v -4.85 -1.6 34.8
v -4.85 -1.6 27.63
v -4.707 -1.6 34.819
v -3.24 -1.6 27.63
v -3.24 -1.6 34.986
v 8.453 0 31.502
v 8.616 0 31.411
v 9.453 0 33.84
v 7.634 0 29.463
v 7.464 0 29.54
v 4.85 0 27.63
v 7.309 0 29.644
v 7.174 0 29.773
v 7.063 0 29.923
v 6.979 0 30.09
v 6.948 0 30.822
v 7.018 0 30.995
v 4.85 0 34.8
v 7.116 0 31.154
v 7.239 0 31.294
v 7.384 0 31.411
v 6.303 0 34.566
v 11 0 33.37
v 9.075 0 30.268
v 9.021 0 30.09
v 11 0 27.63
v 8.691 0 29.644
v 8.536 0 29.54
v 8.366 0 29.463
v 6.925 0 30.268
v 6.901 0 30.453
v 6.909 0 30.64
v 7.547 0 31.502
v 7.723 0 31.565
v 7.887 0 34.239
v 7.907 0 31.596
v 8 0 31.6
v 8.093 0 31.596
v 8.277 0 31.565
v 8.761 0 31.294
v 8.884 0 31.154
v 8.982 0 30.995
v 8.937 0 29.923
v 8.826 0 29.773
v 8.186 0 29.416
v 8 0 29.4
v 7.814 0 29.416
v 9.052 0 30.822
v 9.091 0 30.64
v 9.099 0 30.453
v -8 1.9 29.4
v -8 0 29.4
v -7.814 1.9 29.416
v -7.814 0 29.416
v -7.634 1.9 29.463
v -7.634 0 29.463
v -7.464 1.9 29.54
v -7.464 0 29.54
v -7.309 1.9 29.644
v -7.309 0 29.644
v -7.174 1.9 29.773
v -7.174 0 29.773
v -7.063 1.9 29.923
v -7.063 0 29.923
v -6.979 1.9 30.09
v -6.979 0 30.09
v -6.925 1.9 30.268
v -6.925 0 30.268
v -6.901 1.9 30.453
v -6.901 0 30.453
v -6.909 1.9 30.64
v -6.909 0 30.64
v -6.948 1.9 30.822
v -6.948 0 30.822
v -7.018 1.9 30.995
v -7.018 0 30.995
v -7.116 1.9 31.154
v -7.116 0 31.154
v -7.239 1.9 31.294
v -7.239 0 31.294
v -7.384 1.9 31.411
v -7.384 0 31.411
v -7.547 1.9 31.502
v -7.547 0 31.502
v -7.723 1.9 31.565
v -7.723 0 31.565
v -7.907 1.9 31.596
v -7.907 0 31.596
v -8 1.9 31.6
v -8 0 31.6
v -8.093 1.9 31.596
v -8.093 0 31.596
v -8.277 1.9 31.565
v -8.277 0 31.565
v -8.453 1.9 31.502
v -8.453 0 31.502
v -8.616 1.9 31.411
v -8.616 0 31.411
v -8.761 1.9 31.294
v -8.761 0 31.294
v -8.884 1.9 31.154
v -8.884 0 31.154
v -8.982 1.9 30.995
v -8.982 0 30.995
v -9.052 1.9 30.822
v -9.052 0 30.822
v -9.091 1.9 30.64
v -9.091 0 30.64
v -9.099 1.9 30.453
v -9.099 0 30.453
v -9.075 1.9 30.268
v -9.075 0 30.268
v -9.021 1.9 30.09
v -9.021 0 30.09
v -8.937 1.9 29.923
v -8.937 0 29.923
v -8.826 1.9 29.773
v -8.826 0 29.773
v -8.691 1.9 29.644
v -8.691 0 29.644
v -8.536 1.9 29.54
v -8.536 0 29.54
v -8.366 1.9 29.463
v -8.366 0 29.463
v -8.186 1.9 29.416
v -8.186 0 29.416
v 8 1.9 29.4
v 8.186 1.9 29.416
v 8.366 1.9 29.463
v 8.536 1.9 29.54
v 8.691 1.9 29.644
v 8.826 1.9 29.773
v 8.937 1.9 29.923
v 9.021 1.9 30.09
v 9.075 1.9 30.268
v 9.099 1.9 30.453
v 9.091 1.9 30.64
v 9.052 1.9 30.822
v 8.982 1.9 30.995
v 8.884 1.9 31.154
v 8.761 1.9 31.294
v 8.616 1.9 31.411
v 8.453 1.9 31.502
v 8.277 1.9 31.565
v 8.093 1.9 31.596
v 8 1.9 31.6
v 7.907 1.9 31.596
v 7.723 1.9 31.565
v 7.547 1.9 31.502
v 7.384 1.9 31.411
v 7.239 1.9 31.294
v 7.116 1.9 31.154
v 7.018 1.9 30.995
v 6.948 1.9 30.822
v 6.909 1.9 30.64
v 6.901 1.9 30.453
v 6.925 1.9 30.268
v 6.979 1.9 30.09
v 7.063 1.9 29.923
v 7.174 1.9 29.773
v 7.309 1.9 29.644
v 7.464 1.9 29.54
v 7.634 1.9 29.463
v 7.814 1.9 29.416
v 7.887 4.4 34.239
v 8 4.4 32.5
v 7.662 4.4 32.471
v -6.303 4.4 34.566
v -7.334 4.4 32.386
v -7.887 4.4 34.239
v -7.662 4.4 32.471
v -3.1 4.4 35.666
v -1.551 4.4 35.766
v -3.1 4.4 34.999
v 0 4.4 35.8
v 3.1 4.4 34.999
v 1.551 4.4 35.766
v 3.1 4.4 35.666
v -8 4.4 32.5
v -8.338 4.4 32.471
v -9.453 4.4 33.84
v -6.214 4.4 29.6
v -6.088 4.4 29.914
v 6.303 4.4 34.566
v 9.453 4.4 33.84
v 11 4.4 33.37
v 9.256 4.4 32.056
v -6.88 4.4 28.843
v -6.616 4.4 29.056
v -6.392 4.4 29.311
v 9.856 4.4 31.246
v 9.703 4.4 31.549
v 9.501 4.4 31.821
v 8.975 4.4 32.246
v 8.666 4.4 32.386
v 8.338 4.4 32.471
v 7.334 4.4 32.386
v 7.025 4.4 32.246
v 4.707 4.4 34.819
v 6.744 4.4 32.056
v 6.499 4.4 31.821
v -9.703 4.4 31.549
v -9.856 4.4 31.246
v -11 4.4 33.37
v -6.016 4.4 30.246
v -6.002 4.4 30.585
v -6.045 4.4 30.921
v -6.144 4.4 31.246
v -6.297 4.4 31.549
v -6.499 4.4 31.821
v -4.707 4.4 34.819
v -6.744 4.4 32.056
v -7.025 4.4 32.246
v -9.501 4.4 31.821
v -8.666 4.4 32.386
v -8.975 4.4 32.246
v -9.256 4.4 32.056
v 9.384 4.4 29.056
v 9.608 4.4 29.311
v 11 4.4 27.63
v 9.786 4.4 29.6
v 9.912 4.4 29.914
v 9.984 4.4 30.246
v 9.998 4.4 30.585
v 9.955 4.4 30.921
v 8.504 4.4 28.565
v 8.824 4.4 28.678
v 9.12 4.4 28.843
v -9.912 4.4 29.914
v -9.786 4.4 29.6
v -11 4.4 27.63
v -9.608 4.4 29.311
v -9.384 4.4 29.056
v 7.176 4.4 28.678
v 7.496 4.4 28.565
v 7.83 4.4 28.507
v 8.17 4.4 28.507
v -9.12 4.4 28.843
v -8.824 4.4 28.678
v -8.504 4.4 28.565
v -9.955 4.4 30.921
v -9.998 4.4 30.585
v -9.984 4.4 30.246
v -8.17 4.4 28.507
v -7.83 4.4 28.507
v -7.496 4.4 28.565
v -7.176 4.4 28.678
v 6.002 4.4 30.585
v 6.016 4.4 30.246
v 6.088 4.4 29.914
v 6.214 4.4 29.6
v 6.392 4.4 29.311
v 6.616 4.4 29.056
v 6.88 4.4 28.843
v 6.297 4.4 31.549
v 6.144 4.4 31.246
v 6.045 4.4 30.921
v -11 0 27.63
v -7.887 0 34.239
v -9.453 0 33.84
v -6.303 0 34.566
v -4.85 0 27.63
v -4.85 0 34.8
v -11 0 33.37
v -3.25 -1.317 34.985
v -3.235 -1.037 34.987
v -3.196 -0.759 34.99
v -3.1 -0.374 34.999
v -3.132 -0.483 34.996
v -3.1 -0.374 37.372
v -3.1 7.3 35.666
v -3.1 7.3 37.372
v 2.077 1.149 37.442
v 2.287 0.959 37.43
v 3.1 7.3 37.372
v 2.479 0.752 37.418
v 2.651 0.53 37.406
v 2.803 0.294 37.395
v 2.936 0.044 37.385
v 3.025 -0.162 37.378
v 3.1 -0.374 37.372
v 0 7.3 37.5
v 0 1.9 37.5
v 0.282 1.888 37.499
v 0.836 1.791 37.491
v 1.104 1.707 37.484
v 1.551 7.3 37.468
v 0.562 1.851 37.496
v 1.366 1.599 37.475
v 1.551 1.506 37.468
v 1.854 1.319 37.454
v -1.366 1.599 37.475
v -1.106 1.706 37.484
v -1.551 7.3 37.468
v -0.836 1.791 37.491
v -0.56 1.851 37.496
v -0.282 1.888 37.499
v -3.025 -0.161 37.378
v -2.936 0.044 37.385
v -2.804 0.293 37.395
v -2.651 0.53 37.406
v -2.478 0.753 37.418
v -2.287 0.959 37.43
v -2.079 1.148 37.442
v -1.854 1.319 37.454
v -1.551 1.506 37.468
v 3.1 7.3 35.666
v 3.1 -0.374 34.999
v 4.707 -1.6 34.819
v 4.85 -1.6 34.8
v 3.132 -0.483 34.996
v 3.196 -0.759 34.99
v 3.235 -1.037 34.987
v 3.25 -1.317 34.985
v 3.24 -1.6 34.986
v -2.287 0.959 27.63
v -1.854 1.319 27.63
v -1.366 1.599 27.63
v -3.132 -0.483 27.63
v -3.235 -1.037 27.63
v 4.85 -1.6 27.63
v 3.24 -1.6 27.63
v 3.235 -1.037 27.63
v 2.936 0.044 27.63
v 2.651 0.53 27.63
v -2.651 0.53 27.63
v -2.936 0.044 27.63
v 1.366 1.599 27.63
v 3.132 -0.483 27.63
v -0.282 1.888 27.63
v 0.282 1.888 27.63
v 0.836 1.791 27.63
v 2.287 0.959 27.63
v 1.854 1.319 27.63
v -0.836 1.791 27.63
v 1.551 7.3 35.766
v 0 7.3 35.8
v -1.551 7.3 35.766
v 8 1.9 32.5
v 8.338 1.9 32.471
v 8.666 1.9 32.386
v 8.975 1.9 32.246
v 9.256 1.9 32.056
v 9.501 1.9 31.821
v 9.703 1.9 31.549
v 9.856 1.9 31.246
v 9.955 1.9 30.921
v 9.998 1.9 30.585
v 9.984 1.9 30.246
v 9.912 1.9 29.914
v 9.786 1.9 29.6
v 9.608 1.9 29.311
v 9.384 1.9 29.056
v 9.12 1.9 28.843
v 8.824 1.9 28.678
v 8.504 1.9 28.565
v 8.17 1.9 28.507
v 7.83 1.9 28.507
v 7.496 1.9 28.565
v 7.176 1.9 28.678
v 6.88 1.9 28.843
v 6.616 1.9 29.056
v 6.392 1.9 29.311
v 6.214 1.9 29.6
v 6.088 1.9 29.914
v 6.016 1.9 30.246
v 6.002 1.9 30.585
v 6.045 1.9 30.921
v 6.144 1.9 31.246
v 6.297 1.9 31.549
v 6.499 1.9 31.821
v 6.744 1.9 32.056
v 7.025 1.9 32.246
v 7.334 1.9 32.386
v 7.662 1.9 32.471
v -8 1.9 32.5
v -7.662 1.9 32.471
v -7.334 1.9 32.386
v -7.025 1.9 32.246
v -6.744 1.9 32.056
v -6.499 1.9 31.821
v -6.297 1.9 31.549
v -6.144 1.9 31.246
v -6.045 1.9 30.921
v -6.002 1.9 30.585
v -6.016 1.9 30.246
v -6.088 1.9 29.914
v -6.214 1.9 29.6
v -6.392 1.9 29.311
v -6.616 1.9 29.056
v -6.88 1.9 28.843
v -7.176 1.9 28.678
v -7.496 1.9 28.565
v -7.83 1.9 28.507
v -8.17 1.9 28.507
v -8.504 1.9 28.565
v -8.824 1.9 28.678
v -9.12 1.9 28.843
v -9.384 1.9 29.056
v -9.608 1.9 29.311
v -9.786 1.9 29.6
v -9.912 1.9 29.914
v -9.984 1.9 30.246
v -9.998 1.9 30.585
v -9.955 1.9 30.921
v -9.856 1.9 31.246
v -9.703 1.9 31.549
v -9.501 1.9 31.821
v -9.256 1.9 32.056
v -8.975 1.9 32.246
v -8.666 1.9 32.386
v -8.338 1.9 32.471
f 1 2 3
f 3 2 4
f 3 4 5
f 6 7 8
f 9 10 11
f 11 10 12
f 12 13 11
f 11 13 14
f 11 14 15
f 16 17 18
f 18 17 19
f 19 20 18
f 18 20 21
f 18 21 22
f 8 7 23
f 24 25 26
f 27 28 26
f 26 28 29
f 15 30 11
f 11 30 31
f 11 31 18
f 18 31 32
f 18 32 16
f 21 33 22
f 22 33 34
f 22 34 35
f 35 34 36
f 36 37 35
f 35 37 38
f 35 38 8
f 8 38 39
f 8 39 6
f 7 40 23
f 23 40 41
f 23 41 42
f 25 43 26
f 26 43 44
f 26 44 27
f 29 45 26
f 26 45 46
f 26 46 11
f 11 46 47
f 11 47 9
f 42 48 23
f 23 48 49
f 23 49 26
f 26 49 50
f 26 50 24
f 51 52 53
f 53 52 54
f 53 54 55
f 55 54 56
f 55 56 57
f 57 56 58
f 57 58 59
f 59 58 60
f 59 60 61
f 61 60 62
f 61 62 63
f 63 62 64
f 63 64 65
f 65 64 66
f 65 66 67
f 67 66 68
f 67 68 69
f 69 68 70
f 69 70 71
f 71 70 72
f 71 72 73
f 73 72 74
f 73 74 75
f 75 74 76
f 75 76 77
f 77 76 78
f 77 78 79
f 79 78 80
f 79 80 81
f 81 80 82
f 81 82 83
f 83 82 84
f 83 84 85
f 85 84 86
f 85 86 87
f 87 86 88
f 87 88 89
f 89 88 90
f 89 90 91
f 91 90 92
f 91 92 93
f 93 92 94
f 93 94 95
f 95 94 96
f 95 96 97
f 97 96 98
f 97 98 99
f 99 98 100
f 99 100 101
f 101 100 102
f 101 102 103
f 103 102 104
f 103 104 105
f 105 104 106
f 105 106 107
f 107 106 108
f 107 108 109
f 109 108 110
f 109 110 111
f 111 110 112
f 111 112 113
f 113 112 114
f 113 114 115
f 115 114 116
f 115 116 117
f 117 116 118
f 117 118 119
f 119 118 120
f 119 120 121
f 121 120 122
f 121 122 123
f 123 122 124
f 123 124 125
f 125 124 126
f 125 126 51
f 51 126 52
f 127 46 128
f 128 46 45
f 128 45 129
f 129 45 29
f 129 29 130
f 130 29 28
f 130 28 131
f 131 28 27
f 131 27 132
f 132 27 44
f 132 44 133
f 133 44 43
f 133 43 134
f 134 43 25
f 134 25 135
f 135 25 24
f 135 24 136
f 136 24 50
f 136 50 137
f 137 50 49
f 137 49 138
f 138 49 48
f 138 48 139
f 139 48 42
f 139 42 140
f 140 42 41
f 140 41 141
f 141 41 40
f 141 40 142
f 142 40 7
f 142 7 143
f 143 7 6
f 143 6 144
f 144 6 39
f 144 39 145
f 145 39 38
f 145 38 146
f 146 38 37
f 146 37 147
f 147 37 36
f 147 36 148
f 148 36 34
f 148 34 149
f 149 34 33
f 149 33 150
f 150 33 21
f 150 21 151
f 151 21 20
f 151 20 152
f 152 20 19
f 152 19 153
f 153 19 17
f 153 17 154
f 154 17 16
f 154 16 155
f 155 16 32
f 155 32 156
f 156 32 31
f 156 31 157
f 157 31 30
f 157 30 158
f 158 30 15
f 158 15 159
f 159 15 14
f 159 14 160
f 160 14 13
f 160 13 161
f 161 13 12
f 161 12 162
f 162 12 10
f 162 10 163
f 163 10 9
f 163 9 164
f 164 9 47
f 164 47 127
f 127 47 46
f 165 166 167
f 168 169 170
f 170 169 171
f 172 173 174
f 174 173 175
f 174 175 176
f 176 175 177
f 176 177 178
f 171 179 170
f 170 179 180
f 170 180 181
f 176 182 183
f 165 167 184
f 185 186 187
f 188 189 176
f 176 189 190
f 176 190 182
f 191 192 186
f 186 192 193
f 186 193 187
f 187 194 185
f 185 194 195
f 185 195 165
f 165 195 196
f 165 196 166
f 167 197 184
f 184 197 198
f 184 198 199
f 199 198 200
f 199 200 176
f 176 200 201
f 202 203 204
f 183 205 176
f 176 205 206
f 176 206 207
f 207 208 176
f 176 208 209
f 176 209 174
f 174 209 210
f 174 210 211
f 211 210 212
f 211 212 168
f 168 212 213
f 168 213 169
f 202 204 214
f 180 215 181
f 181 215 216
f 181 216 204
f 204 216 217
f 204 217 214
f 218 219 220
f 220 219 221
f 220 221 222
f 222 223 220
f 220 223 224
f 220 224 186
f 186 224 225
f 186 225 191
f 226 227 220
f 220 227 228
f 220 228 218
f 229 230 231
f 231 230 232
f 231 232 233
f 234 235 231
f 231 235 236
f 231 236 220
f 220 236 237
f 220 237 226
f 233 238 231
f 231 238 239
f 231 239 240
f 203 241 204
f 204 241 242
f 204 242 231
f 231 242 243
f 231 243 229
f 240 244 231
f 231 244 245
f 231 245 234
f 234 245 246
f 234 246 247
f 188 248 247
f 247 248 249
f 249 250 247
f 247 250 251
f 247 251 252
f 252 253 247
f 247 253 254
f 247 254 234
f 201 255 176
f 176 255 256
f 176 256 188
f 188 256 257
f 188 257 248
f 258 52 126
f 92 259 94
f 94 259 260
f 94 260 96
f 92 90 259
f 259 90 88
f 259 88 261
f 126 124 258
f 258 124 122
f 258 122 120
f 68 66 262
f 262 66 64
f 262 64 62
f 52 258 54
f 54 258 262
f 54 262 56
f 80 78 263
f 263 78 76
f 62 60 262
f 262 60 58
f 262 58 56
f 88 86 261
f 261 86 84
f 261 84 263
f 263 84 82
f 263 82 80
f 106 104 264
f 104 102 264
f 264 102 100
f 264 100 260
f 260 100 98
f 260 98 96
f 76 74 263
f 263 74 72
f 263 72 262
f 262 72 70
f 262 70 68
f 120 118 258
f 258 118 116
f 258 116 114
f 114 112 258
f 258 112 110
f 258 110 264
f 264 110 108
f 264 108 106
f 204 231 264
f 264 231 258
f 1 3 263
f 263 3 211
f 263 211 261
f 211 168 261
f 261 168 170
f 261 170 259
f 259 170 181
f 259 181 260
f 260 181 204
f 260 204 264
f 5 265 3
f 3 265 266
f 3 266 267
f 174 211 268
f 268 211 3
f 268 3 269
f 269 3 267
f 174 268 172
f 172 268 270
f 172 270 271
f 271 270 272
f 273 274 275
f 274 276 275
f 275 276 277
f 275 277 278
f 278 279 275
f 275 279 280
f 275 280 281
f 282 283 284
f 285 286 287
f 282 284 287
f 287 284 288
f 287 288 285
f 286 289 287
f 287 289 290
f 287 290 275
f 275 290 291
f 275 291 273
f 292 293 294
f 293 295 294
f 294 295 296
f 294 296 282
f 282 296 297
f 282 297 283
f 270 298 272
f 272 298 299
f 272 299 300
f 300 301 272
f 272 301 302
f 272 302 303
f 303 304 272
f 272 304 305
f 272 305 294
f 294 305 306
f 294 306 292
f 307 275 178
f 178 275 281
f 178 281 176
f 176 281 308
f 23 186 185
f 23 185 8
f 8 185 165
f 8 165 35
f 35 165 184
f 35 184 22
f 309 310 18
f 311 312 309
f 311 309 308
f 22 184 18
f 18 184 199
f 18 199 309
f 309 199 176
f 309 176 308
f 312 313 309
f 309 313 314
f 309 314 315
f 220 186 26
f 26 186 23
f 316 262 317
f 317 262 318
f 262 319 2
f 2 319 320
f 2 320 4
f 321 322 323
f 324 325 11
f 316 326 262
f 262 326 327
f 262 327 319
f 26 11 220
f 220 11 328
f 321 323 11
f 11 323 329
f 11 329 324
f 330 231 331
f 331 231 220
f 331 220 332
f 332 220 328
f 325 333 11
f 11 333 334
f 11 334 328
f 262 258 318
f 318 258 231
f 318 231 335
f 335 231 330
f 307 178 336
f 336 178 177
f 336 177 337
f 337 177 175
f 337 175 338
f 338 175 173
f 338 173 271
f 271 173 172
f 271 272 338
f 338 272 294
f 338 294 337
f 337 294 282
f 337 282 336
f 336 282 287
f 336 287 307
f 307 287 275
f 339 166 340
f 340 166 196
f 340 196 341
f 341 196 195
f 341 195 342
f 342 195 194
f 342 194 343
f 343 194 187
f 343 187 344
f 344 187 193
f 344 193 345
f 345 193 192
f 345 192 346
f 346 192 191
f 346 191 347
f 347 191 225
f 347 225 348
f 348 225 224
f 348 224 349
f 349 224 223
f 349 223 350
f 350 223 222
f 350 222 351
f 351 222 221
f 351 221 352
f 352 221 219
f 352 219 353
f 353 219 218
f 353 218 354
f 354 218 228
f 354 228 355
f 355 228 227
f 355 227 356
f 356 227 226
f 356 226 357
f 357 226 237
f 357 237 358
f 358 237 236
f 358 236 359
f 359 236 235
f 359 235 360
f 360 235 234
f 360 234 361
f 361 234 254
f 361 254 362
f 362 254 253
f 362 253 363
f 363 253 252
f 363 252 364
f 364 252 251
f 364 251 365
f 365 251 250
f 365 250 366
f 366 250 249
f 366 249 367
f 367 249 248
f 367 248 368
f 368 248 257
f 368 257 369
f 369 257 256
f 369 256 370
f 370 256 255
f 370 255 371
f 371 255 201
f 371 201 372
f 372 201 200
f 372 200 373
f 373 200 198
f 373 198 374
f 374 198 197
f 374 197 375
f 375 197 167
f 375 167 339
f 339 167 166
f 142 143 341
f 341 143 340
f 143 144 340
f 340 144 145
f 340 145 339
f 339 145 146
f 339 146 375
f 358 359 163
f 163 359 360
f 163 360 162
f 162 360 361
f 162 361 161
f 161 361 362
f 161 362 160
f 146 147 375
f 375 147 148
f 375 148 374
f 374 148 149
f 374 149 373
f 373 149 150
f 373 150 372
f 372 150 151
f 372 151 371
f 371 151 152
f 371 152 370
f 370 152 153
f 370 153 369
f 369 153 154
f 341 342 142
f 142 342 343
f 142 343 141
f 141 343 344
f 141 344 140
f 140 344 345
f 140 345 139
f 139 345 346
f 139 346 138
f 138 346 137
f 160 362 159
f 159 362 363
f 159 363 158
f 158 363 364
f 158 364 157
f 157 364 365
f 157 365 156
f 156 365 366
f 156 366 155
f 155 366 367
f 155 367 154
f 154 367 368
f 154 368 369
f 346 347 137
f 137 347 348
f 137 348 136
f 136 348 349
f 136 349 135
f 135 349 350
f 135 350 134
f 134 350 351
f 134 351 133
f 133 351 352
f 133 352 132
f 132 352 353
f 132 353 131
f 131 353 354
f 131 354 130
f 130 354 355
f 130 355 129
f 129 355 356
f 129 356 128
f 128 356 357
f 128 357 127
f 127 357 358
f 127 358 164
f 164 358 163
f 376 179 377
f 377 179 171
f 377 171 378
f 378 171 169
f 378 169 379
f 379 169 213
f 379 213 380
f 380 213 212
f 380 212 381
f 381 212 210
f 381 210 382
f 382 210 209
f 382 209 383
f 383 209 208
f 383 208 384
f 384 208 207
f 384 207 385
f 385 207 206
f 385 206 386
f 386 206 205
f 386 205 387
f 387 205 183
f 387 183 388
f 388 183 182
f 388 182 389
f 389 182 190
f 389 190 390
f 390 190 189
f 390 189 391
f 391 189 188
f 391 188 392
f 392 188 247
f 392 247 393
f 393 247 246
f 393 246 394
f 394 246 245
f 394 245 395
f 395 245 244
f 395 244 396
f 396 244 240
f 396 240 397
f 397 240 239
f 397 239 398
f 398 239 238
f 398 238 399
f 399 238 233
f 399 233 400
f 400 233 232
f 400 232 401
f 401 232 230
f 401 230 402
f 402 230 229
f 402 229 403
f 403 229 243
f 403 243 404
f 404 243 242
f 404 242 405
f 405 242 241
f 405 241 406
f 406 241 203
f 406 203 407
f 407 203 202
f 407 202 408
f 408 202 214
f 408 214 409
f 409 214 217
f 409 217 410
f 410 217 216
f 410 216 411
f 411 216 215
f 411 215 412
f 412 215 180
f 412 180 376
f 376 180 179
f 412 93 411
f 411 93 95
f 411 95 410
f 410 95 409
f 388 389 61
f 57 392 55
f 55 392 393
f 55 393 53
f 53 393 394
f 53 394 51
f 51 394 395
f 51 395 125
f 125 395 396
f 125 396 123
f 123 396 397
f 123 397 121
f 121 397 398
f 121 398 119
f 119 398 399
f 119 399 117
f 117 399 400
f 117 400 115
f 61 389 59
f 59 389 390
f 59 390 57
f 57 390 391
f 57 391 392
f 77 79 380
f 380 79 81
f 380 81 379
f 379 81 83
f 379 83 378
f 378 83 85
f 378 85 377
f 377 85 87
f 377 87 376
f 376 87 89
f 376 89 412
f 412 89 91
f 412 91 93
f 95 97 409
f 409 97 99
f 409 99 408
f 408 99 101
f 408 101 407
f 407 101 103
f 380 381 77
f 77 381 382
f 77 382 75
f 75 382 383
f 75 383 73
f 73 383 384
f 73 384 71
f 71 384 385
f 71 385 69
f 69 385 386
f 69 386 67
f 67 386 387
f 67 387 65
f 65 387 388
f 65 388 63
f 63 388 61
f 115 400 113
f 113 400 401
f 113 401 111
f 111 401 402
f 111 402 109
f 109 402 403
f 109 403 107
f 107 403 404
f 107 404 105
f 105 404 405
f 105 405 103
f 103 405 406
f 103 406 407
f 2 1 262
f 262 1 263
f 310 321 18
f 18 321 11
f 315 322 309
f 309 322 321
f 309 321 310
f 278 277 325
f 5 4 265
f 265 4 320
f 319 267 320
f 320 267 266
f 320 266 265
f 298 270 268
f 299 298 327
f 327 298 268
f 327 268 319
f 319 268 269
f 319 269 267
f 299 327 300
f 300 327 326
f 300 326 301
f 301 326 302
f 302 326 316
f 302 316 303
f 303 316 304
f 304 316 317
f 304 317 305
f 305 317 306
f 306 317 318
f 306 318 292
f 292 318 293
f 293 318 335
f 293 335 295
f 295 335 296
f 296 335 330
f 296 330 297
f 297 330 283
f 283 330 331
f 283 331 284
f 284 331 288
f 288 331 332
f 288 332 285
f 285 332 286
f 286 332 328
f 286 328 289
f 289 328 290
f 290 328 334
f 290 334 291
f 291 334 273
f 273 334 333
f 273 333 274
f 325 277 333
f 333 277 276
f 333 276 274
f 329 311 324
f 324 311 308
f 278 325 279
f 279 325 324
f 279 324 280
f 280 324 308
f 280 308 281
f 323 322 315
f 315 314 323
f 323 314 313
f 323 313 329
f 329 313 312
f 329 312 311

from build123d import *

# Parameters (mm, degrees)
SKETCH1_R           = 1.1
BOSS_EXTRUDE1_DEPTH = 4.4
BOSS_EXTRUDE2_DEPTH = 2.9
SKETCH3_R           = 2
CUT_EXTRUDE1_DEPTH  = 2.5
BOSS_EXTRUDE3_DEPTH = 1.6
SKETCH6_R           = 3.25
CUT_EXTRUDE2_DEPTH  = 10.869724242


with BuildPart() as part:
    # Sketch1 → Boss-Extrude1 (new body)
    with BuildSketch(Plane(origin=(0, 0, 0), x_dir=(1, 0, 0), z_dir=(0, 1, 0))):
        with BuildLine():
            Line((-3.1, -37.371647007), (-3.1, -34.998978499))
            ThreePointArc((-3.1, -34.998978499), (-7.096909, -34.411805803), (-11, -33.369724242))
            Line((-11, -33.369724242), (-11, -27.630275758))
            Line((-11, -27.630275758), (11, -27.630275758))
            Line((11, -27.630275758), (11, -33.369724242))
            ThreePointArc((11, -33.369724242), (7.096909, -34.411805803), (3.1, -34.998978499))
            Line((3.1, -34.998978499), (3.1, -37.371647007))
            ThreePointArc((3.1, -37.371647007), (0, -37.5), (-3.1, -37.371647007))
        make_face()
        with Locations((-8, -30.5)):
            Circle(SKETCH1_R, mode=Mode.SUBTRACT)
        with Locations((8, -30.5)):
            Circle(SKETCH1_R, mode=Mode.SUBTRACT)
    extrude(amount=BOSS_EXTRUDE1_DEPTH)

    # Sketch2 → Boss-Extrude2 (add)
    with BuildSketch(Plane(origin=(0, 4.4, 0), x_dir=(1, 0, 0), z_dir=(0, 1, 0))):
        with BuildLine():
            Line((3.1, -37.371647007), (3.1, -35.665529577))
            ThreePointArc((3.1, -35.665529577), (0, -35.8), (-3.1, -35.665529577))
            Line((-3.1, -35.665529577), (-3.1, -37.371647007))
            ThreePointArc((-3.1, -37.371647007), (0, -37.5), (3.1, -37.371647007))
        make_face()
    extrude(amount=BOSS_EXTRUDE2_DEPTH)

    # Sketch3 → Cut-Extrude1 (cut)
    with BuildSketch(Plane(origin=(0, 4.4, 0), x_dir=(1, 0, 0), z_dir=(0, 1, 0))):
        with Locations((-8, -30.5)):
            Circle(SKETCH3_R)
        with Locations((8, -30.5)):
            Circle(SKETCH3_R)
    extrude(amount=-CUT_EXTRUDE1_DEPTH, mode=Mode.SUBTRACT)

    # Sketch5 → Boss-Extrude3 (add)
    with BuildSketch(Plane.XZ):
        with BuildLine():
            Line((-4.85, 34.799655113), (-4.85, 27.630275758))
            Line((-4.85, 27.630275758), (4.85, 27.630275758))
            Line((4.85, 27.630275758), (4.85, 34.799655113))
            ThreePointArc((4.85, 34.799655113), (3.976249169, 34.910284137), (3.1, 34.998978499))
            Line((3.1, 34.998978499), (3.1, 37.371647007))
            ThreePointArc((3.1, 37.371647007), (0, 37.5), (-3.1, 37.371647007))
            Line((-3.1, 37.371647007), (-3.1, 34.998978499))
            ThreePointArc((-3.1, 34.998978499), (-3.976249169, 34.910284137), (-4.85, 34.799655113))
        make_face()
    extrude(amount=BOSS_EXTRUDE3_DEPTH)

    # Sketch6 → Cut-Extrude2 (cut, through all)
    with BuildSketch(Plane(origin=(0, 0, 27.630275758), x_dir=(-1, 0, 0), z_dir=(0, 0, -1))):
        with Locations((0, -1.35)):
            Circle(SKETCH6_R)
    extrude(amount=-CUT_EXTRUDE2_DEPTH, mode=Mode.SUBTRACT)


solid = part.part
